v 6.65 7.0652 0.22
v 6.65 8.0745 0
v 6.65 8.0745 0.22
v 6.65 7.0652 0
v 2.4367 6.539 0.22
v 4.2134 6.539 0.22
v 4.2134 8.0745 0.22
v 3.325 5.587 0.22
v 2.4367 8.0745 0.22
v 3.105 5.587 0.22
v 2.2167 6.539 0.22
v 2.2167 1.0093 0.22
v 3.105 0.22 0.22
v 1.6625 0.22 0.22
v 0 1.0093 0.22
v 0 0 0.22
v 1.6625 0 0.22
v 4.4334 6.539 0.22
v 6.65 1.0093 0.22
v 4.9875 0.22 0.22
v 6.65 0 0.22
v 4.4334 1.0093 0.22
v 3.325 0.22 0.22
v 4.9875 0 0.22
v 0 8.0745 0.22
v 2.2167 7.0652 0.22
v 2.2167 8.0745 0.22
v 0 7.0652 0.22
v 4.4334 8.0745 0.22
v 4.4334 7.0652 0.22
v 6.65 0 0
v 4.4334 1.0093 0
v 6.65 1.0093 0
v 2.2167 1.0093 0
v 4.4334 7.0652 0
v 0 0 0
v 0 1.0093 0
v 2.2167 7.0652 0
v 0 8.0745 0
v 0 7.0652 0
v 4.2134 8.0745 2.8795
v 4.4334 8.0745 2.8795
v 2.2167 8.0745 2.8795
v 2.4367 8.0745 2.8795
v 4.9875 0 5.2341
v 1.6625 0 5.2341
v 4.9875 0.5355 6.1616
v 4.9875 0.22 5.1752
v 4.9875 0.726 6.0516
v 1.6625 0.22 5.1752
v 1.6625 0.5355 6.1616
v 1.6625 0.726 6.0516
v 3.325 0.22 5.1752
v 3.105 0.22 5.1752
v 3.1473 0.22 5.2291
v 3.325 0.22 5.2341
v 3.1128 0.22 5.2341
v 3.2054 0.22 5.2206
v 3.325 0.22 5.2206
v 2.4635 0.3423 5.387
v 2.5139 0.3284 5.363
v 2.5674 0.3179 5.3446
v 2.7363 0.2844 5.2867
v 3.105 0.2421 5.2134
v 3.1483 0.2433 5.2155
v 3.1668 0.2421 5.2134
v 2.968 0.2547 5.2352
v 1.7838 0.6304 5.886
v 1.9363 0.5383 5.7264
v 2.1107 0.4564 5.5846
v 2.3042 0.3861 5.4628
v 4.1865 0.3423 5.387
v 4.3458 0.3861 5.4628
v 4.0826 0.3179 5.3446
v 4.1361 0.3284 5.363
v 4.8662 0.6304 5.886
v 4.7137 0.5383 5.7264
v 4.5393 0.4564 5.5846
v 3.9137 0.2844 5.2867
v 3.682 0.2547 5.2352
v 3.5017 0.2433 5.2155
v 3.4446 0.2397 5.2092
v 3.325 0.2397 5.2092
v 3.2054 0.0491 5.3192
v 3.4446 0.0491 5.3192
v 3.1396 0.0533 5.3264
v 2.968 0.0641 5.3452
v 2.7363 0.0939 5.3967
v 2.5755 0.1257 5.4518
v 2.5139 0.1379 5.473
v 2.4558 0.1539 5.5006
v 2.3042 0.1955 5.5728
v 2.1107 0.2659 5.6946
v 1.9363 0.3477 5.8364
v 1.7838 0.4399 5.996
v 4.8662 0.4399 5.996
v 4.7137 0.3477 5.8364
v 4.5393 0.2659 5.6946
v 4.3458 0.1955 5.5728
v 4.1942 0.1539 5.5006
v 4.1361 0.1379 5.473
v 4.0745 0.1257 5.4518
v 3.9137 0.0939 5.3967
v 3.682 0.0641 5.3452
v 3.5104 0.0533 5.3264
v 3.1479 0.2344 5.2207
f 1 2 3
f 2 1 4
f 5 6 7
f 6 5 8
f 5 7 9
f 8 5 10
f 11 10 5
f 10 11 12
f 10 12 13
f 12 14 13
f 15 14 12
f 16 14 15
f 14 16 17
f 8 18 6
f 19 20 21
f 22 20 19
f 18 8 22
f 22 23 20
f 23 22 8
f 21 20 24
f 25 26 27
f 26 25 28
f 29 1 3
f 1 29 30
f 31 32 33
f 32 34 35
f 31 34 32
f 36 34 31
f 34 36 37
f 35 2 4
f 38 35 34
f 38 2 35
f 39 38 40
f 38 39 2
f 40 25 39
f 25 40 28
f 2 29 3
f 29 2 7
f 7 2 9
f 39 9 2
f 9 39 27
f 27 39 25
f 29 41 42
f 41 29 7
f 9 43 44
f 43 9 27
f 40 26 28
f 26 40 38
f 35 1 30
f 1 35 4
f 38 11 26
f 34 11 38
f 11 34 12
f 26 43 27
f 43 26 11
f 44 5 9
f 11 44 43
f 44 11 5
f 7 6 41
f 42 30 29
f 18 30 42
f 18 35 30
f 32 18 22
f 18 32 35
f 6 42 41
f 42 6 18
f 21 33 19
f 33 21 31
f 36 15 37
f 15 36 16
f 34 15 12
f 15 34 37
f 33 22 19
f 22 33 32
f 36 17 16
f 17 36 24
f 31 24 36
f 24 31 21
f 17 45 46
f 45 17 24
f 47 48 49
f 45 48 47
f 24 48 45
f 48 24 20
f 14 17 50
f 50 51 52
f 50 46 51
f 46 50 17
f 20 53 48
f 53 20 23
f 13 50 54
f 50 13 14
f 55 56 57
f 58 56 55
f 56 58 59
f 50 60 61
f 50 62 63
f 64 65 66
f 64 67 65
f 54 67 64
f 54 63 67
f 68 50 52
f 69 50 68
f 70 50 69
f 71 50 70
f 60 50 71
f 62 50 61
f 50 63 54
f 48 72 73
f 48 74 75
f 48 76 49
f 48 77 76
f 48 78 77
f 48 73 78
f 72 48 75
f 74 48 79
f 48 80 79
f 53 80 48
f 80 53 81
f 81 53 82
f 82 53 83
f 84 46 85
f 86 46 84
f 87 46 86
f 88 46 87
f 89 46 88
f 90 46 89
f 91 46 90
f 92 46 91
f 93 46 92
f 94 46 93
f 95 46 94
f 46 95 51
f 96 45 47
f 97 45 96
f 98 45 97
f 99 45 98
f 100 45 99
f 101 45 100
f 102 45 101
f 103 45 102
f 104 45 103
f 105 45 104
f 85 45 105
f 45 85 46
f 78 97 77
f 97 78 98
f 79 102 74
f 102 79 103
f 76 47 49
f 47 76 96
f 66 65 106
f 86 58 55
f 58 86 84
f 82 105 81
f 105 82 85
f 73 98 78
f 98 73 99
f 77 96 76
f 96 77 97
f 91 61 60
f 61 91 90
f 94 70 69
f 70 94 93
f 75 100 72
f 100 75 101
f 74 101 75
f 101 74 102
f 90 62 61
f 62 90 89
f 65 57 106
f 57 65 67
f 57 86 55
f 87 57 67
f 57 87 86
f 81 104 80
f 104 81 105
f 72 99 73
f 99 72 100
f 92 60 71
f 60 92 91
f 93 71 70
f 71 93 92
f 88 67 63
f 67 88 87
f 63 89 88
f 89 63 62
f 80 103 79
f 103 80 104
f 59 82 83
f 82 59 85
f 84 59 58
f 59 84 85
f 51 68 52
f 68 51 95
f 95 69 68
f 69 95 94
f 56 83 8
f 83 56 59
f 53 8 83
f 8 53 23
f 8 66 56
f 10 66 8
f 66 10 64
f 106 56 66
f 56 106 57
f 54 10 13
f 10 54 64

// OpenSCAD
$fn = 50;

union() {
    translate([2.2167, 0, 0]) {
        cube([2.2167, 8.0745, 0.22]);
    };
    union() {
        translate([0, 7.0652, 0]) {
            cube([6.65, 1.0093, 0.22]);
        };
        translate([2.2167, 8.0745, 0]) {
            rotate([180, 270, 0]) {
                linear_extrude(height=0.22) {
                    polygon([[0, 0], [2.8795344675833, 0], [0, 1.6625]]);
                };
            };
        };
        translate([4.2134, 8.0745, 0]) {
            rotate([180, 270, 0]) {
                linear_extrude(height=0.22) {
                    polygon([[0, 0], [2.8795344675833, 0], [0, 1.6625]]);
                };
            };
        };
    };
    difference() {
        union() {
            cube([6.65, 1.0093, 0.22]);
            translate([1.6625, 0, 0]) {
                cube([3.325, 0.22, 5.2341]);
            };
            translate([1.6625, 0, 5.2341]) {
                rotate([-30, 0, 0]) {
                    cube([3.325, 0.22, 1.6454]);
                };
            };
        };
        hull() {
            translate([3.325, 2.4395348754011, 6.1345]) {
                rotate([60, 0, 0]) {
                    cylinder(h=6, r2=1.905, r1=1.905);
                };
            };
            translate([3.325, 2.4395348754011, 8.0345]) {
                rotate([60, 0, 0]) {
                    cylinder(h=6, r2=2.667, r1=2.667);
                };
            };
        };
    };
    translate([3.325, 0.22, 0.22]) {
        rotate([0, 270, 0]) {
            linear_extrude(height=0.22) {
                polygon([[0, 0], [5.0141, 0], [0, 5.3670342418089]]);
            };
        };
    };
};
